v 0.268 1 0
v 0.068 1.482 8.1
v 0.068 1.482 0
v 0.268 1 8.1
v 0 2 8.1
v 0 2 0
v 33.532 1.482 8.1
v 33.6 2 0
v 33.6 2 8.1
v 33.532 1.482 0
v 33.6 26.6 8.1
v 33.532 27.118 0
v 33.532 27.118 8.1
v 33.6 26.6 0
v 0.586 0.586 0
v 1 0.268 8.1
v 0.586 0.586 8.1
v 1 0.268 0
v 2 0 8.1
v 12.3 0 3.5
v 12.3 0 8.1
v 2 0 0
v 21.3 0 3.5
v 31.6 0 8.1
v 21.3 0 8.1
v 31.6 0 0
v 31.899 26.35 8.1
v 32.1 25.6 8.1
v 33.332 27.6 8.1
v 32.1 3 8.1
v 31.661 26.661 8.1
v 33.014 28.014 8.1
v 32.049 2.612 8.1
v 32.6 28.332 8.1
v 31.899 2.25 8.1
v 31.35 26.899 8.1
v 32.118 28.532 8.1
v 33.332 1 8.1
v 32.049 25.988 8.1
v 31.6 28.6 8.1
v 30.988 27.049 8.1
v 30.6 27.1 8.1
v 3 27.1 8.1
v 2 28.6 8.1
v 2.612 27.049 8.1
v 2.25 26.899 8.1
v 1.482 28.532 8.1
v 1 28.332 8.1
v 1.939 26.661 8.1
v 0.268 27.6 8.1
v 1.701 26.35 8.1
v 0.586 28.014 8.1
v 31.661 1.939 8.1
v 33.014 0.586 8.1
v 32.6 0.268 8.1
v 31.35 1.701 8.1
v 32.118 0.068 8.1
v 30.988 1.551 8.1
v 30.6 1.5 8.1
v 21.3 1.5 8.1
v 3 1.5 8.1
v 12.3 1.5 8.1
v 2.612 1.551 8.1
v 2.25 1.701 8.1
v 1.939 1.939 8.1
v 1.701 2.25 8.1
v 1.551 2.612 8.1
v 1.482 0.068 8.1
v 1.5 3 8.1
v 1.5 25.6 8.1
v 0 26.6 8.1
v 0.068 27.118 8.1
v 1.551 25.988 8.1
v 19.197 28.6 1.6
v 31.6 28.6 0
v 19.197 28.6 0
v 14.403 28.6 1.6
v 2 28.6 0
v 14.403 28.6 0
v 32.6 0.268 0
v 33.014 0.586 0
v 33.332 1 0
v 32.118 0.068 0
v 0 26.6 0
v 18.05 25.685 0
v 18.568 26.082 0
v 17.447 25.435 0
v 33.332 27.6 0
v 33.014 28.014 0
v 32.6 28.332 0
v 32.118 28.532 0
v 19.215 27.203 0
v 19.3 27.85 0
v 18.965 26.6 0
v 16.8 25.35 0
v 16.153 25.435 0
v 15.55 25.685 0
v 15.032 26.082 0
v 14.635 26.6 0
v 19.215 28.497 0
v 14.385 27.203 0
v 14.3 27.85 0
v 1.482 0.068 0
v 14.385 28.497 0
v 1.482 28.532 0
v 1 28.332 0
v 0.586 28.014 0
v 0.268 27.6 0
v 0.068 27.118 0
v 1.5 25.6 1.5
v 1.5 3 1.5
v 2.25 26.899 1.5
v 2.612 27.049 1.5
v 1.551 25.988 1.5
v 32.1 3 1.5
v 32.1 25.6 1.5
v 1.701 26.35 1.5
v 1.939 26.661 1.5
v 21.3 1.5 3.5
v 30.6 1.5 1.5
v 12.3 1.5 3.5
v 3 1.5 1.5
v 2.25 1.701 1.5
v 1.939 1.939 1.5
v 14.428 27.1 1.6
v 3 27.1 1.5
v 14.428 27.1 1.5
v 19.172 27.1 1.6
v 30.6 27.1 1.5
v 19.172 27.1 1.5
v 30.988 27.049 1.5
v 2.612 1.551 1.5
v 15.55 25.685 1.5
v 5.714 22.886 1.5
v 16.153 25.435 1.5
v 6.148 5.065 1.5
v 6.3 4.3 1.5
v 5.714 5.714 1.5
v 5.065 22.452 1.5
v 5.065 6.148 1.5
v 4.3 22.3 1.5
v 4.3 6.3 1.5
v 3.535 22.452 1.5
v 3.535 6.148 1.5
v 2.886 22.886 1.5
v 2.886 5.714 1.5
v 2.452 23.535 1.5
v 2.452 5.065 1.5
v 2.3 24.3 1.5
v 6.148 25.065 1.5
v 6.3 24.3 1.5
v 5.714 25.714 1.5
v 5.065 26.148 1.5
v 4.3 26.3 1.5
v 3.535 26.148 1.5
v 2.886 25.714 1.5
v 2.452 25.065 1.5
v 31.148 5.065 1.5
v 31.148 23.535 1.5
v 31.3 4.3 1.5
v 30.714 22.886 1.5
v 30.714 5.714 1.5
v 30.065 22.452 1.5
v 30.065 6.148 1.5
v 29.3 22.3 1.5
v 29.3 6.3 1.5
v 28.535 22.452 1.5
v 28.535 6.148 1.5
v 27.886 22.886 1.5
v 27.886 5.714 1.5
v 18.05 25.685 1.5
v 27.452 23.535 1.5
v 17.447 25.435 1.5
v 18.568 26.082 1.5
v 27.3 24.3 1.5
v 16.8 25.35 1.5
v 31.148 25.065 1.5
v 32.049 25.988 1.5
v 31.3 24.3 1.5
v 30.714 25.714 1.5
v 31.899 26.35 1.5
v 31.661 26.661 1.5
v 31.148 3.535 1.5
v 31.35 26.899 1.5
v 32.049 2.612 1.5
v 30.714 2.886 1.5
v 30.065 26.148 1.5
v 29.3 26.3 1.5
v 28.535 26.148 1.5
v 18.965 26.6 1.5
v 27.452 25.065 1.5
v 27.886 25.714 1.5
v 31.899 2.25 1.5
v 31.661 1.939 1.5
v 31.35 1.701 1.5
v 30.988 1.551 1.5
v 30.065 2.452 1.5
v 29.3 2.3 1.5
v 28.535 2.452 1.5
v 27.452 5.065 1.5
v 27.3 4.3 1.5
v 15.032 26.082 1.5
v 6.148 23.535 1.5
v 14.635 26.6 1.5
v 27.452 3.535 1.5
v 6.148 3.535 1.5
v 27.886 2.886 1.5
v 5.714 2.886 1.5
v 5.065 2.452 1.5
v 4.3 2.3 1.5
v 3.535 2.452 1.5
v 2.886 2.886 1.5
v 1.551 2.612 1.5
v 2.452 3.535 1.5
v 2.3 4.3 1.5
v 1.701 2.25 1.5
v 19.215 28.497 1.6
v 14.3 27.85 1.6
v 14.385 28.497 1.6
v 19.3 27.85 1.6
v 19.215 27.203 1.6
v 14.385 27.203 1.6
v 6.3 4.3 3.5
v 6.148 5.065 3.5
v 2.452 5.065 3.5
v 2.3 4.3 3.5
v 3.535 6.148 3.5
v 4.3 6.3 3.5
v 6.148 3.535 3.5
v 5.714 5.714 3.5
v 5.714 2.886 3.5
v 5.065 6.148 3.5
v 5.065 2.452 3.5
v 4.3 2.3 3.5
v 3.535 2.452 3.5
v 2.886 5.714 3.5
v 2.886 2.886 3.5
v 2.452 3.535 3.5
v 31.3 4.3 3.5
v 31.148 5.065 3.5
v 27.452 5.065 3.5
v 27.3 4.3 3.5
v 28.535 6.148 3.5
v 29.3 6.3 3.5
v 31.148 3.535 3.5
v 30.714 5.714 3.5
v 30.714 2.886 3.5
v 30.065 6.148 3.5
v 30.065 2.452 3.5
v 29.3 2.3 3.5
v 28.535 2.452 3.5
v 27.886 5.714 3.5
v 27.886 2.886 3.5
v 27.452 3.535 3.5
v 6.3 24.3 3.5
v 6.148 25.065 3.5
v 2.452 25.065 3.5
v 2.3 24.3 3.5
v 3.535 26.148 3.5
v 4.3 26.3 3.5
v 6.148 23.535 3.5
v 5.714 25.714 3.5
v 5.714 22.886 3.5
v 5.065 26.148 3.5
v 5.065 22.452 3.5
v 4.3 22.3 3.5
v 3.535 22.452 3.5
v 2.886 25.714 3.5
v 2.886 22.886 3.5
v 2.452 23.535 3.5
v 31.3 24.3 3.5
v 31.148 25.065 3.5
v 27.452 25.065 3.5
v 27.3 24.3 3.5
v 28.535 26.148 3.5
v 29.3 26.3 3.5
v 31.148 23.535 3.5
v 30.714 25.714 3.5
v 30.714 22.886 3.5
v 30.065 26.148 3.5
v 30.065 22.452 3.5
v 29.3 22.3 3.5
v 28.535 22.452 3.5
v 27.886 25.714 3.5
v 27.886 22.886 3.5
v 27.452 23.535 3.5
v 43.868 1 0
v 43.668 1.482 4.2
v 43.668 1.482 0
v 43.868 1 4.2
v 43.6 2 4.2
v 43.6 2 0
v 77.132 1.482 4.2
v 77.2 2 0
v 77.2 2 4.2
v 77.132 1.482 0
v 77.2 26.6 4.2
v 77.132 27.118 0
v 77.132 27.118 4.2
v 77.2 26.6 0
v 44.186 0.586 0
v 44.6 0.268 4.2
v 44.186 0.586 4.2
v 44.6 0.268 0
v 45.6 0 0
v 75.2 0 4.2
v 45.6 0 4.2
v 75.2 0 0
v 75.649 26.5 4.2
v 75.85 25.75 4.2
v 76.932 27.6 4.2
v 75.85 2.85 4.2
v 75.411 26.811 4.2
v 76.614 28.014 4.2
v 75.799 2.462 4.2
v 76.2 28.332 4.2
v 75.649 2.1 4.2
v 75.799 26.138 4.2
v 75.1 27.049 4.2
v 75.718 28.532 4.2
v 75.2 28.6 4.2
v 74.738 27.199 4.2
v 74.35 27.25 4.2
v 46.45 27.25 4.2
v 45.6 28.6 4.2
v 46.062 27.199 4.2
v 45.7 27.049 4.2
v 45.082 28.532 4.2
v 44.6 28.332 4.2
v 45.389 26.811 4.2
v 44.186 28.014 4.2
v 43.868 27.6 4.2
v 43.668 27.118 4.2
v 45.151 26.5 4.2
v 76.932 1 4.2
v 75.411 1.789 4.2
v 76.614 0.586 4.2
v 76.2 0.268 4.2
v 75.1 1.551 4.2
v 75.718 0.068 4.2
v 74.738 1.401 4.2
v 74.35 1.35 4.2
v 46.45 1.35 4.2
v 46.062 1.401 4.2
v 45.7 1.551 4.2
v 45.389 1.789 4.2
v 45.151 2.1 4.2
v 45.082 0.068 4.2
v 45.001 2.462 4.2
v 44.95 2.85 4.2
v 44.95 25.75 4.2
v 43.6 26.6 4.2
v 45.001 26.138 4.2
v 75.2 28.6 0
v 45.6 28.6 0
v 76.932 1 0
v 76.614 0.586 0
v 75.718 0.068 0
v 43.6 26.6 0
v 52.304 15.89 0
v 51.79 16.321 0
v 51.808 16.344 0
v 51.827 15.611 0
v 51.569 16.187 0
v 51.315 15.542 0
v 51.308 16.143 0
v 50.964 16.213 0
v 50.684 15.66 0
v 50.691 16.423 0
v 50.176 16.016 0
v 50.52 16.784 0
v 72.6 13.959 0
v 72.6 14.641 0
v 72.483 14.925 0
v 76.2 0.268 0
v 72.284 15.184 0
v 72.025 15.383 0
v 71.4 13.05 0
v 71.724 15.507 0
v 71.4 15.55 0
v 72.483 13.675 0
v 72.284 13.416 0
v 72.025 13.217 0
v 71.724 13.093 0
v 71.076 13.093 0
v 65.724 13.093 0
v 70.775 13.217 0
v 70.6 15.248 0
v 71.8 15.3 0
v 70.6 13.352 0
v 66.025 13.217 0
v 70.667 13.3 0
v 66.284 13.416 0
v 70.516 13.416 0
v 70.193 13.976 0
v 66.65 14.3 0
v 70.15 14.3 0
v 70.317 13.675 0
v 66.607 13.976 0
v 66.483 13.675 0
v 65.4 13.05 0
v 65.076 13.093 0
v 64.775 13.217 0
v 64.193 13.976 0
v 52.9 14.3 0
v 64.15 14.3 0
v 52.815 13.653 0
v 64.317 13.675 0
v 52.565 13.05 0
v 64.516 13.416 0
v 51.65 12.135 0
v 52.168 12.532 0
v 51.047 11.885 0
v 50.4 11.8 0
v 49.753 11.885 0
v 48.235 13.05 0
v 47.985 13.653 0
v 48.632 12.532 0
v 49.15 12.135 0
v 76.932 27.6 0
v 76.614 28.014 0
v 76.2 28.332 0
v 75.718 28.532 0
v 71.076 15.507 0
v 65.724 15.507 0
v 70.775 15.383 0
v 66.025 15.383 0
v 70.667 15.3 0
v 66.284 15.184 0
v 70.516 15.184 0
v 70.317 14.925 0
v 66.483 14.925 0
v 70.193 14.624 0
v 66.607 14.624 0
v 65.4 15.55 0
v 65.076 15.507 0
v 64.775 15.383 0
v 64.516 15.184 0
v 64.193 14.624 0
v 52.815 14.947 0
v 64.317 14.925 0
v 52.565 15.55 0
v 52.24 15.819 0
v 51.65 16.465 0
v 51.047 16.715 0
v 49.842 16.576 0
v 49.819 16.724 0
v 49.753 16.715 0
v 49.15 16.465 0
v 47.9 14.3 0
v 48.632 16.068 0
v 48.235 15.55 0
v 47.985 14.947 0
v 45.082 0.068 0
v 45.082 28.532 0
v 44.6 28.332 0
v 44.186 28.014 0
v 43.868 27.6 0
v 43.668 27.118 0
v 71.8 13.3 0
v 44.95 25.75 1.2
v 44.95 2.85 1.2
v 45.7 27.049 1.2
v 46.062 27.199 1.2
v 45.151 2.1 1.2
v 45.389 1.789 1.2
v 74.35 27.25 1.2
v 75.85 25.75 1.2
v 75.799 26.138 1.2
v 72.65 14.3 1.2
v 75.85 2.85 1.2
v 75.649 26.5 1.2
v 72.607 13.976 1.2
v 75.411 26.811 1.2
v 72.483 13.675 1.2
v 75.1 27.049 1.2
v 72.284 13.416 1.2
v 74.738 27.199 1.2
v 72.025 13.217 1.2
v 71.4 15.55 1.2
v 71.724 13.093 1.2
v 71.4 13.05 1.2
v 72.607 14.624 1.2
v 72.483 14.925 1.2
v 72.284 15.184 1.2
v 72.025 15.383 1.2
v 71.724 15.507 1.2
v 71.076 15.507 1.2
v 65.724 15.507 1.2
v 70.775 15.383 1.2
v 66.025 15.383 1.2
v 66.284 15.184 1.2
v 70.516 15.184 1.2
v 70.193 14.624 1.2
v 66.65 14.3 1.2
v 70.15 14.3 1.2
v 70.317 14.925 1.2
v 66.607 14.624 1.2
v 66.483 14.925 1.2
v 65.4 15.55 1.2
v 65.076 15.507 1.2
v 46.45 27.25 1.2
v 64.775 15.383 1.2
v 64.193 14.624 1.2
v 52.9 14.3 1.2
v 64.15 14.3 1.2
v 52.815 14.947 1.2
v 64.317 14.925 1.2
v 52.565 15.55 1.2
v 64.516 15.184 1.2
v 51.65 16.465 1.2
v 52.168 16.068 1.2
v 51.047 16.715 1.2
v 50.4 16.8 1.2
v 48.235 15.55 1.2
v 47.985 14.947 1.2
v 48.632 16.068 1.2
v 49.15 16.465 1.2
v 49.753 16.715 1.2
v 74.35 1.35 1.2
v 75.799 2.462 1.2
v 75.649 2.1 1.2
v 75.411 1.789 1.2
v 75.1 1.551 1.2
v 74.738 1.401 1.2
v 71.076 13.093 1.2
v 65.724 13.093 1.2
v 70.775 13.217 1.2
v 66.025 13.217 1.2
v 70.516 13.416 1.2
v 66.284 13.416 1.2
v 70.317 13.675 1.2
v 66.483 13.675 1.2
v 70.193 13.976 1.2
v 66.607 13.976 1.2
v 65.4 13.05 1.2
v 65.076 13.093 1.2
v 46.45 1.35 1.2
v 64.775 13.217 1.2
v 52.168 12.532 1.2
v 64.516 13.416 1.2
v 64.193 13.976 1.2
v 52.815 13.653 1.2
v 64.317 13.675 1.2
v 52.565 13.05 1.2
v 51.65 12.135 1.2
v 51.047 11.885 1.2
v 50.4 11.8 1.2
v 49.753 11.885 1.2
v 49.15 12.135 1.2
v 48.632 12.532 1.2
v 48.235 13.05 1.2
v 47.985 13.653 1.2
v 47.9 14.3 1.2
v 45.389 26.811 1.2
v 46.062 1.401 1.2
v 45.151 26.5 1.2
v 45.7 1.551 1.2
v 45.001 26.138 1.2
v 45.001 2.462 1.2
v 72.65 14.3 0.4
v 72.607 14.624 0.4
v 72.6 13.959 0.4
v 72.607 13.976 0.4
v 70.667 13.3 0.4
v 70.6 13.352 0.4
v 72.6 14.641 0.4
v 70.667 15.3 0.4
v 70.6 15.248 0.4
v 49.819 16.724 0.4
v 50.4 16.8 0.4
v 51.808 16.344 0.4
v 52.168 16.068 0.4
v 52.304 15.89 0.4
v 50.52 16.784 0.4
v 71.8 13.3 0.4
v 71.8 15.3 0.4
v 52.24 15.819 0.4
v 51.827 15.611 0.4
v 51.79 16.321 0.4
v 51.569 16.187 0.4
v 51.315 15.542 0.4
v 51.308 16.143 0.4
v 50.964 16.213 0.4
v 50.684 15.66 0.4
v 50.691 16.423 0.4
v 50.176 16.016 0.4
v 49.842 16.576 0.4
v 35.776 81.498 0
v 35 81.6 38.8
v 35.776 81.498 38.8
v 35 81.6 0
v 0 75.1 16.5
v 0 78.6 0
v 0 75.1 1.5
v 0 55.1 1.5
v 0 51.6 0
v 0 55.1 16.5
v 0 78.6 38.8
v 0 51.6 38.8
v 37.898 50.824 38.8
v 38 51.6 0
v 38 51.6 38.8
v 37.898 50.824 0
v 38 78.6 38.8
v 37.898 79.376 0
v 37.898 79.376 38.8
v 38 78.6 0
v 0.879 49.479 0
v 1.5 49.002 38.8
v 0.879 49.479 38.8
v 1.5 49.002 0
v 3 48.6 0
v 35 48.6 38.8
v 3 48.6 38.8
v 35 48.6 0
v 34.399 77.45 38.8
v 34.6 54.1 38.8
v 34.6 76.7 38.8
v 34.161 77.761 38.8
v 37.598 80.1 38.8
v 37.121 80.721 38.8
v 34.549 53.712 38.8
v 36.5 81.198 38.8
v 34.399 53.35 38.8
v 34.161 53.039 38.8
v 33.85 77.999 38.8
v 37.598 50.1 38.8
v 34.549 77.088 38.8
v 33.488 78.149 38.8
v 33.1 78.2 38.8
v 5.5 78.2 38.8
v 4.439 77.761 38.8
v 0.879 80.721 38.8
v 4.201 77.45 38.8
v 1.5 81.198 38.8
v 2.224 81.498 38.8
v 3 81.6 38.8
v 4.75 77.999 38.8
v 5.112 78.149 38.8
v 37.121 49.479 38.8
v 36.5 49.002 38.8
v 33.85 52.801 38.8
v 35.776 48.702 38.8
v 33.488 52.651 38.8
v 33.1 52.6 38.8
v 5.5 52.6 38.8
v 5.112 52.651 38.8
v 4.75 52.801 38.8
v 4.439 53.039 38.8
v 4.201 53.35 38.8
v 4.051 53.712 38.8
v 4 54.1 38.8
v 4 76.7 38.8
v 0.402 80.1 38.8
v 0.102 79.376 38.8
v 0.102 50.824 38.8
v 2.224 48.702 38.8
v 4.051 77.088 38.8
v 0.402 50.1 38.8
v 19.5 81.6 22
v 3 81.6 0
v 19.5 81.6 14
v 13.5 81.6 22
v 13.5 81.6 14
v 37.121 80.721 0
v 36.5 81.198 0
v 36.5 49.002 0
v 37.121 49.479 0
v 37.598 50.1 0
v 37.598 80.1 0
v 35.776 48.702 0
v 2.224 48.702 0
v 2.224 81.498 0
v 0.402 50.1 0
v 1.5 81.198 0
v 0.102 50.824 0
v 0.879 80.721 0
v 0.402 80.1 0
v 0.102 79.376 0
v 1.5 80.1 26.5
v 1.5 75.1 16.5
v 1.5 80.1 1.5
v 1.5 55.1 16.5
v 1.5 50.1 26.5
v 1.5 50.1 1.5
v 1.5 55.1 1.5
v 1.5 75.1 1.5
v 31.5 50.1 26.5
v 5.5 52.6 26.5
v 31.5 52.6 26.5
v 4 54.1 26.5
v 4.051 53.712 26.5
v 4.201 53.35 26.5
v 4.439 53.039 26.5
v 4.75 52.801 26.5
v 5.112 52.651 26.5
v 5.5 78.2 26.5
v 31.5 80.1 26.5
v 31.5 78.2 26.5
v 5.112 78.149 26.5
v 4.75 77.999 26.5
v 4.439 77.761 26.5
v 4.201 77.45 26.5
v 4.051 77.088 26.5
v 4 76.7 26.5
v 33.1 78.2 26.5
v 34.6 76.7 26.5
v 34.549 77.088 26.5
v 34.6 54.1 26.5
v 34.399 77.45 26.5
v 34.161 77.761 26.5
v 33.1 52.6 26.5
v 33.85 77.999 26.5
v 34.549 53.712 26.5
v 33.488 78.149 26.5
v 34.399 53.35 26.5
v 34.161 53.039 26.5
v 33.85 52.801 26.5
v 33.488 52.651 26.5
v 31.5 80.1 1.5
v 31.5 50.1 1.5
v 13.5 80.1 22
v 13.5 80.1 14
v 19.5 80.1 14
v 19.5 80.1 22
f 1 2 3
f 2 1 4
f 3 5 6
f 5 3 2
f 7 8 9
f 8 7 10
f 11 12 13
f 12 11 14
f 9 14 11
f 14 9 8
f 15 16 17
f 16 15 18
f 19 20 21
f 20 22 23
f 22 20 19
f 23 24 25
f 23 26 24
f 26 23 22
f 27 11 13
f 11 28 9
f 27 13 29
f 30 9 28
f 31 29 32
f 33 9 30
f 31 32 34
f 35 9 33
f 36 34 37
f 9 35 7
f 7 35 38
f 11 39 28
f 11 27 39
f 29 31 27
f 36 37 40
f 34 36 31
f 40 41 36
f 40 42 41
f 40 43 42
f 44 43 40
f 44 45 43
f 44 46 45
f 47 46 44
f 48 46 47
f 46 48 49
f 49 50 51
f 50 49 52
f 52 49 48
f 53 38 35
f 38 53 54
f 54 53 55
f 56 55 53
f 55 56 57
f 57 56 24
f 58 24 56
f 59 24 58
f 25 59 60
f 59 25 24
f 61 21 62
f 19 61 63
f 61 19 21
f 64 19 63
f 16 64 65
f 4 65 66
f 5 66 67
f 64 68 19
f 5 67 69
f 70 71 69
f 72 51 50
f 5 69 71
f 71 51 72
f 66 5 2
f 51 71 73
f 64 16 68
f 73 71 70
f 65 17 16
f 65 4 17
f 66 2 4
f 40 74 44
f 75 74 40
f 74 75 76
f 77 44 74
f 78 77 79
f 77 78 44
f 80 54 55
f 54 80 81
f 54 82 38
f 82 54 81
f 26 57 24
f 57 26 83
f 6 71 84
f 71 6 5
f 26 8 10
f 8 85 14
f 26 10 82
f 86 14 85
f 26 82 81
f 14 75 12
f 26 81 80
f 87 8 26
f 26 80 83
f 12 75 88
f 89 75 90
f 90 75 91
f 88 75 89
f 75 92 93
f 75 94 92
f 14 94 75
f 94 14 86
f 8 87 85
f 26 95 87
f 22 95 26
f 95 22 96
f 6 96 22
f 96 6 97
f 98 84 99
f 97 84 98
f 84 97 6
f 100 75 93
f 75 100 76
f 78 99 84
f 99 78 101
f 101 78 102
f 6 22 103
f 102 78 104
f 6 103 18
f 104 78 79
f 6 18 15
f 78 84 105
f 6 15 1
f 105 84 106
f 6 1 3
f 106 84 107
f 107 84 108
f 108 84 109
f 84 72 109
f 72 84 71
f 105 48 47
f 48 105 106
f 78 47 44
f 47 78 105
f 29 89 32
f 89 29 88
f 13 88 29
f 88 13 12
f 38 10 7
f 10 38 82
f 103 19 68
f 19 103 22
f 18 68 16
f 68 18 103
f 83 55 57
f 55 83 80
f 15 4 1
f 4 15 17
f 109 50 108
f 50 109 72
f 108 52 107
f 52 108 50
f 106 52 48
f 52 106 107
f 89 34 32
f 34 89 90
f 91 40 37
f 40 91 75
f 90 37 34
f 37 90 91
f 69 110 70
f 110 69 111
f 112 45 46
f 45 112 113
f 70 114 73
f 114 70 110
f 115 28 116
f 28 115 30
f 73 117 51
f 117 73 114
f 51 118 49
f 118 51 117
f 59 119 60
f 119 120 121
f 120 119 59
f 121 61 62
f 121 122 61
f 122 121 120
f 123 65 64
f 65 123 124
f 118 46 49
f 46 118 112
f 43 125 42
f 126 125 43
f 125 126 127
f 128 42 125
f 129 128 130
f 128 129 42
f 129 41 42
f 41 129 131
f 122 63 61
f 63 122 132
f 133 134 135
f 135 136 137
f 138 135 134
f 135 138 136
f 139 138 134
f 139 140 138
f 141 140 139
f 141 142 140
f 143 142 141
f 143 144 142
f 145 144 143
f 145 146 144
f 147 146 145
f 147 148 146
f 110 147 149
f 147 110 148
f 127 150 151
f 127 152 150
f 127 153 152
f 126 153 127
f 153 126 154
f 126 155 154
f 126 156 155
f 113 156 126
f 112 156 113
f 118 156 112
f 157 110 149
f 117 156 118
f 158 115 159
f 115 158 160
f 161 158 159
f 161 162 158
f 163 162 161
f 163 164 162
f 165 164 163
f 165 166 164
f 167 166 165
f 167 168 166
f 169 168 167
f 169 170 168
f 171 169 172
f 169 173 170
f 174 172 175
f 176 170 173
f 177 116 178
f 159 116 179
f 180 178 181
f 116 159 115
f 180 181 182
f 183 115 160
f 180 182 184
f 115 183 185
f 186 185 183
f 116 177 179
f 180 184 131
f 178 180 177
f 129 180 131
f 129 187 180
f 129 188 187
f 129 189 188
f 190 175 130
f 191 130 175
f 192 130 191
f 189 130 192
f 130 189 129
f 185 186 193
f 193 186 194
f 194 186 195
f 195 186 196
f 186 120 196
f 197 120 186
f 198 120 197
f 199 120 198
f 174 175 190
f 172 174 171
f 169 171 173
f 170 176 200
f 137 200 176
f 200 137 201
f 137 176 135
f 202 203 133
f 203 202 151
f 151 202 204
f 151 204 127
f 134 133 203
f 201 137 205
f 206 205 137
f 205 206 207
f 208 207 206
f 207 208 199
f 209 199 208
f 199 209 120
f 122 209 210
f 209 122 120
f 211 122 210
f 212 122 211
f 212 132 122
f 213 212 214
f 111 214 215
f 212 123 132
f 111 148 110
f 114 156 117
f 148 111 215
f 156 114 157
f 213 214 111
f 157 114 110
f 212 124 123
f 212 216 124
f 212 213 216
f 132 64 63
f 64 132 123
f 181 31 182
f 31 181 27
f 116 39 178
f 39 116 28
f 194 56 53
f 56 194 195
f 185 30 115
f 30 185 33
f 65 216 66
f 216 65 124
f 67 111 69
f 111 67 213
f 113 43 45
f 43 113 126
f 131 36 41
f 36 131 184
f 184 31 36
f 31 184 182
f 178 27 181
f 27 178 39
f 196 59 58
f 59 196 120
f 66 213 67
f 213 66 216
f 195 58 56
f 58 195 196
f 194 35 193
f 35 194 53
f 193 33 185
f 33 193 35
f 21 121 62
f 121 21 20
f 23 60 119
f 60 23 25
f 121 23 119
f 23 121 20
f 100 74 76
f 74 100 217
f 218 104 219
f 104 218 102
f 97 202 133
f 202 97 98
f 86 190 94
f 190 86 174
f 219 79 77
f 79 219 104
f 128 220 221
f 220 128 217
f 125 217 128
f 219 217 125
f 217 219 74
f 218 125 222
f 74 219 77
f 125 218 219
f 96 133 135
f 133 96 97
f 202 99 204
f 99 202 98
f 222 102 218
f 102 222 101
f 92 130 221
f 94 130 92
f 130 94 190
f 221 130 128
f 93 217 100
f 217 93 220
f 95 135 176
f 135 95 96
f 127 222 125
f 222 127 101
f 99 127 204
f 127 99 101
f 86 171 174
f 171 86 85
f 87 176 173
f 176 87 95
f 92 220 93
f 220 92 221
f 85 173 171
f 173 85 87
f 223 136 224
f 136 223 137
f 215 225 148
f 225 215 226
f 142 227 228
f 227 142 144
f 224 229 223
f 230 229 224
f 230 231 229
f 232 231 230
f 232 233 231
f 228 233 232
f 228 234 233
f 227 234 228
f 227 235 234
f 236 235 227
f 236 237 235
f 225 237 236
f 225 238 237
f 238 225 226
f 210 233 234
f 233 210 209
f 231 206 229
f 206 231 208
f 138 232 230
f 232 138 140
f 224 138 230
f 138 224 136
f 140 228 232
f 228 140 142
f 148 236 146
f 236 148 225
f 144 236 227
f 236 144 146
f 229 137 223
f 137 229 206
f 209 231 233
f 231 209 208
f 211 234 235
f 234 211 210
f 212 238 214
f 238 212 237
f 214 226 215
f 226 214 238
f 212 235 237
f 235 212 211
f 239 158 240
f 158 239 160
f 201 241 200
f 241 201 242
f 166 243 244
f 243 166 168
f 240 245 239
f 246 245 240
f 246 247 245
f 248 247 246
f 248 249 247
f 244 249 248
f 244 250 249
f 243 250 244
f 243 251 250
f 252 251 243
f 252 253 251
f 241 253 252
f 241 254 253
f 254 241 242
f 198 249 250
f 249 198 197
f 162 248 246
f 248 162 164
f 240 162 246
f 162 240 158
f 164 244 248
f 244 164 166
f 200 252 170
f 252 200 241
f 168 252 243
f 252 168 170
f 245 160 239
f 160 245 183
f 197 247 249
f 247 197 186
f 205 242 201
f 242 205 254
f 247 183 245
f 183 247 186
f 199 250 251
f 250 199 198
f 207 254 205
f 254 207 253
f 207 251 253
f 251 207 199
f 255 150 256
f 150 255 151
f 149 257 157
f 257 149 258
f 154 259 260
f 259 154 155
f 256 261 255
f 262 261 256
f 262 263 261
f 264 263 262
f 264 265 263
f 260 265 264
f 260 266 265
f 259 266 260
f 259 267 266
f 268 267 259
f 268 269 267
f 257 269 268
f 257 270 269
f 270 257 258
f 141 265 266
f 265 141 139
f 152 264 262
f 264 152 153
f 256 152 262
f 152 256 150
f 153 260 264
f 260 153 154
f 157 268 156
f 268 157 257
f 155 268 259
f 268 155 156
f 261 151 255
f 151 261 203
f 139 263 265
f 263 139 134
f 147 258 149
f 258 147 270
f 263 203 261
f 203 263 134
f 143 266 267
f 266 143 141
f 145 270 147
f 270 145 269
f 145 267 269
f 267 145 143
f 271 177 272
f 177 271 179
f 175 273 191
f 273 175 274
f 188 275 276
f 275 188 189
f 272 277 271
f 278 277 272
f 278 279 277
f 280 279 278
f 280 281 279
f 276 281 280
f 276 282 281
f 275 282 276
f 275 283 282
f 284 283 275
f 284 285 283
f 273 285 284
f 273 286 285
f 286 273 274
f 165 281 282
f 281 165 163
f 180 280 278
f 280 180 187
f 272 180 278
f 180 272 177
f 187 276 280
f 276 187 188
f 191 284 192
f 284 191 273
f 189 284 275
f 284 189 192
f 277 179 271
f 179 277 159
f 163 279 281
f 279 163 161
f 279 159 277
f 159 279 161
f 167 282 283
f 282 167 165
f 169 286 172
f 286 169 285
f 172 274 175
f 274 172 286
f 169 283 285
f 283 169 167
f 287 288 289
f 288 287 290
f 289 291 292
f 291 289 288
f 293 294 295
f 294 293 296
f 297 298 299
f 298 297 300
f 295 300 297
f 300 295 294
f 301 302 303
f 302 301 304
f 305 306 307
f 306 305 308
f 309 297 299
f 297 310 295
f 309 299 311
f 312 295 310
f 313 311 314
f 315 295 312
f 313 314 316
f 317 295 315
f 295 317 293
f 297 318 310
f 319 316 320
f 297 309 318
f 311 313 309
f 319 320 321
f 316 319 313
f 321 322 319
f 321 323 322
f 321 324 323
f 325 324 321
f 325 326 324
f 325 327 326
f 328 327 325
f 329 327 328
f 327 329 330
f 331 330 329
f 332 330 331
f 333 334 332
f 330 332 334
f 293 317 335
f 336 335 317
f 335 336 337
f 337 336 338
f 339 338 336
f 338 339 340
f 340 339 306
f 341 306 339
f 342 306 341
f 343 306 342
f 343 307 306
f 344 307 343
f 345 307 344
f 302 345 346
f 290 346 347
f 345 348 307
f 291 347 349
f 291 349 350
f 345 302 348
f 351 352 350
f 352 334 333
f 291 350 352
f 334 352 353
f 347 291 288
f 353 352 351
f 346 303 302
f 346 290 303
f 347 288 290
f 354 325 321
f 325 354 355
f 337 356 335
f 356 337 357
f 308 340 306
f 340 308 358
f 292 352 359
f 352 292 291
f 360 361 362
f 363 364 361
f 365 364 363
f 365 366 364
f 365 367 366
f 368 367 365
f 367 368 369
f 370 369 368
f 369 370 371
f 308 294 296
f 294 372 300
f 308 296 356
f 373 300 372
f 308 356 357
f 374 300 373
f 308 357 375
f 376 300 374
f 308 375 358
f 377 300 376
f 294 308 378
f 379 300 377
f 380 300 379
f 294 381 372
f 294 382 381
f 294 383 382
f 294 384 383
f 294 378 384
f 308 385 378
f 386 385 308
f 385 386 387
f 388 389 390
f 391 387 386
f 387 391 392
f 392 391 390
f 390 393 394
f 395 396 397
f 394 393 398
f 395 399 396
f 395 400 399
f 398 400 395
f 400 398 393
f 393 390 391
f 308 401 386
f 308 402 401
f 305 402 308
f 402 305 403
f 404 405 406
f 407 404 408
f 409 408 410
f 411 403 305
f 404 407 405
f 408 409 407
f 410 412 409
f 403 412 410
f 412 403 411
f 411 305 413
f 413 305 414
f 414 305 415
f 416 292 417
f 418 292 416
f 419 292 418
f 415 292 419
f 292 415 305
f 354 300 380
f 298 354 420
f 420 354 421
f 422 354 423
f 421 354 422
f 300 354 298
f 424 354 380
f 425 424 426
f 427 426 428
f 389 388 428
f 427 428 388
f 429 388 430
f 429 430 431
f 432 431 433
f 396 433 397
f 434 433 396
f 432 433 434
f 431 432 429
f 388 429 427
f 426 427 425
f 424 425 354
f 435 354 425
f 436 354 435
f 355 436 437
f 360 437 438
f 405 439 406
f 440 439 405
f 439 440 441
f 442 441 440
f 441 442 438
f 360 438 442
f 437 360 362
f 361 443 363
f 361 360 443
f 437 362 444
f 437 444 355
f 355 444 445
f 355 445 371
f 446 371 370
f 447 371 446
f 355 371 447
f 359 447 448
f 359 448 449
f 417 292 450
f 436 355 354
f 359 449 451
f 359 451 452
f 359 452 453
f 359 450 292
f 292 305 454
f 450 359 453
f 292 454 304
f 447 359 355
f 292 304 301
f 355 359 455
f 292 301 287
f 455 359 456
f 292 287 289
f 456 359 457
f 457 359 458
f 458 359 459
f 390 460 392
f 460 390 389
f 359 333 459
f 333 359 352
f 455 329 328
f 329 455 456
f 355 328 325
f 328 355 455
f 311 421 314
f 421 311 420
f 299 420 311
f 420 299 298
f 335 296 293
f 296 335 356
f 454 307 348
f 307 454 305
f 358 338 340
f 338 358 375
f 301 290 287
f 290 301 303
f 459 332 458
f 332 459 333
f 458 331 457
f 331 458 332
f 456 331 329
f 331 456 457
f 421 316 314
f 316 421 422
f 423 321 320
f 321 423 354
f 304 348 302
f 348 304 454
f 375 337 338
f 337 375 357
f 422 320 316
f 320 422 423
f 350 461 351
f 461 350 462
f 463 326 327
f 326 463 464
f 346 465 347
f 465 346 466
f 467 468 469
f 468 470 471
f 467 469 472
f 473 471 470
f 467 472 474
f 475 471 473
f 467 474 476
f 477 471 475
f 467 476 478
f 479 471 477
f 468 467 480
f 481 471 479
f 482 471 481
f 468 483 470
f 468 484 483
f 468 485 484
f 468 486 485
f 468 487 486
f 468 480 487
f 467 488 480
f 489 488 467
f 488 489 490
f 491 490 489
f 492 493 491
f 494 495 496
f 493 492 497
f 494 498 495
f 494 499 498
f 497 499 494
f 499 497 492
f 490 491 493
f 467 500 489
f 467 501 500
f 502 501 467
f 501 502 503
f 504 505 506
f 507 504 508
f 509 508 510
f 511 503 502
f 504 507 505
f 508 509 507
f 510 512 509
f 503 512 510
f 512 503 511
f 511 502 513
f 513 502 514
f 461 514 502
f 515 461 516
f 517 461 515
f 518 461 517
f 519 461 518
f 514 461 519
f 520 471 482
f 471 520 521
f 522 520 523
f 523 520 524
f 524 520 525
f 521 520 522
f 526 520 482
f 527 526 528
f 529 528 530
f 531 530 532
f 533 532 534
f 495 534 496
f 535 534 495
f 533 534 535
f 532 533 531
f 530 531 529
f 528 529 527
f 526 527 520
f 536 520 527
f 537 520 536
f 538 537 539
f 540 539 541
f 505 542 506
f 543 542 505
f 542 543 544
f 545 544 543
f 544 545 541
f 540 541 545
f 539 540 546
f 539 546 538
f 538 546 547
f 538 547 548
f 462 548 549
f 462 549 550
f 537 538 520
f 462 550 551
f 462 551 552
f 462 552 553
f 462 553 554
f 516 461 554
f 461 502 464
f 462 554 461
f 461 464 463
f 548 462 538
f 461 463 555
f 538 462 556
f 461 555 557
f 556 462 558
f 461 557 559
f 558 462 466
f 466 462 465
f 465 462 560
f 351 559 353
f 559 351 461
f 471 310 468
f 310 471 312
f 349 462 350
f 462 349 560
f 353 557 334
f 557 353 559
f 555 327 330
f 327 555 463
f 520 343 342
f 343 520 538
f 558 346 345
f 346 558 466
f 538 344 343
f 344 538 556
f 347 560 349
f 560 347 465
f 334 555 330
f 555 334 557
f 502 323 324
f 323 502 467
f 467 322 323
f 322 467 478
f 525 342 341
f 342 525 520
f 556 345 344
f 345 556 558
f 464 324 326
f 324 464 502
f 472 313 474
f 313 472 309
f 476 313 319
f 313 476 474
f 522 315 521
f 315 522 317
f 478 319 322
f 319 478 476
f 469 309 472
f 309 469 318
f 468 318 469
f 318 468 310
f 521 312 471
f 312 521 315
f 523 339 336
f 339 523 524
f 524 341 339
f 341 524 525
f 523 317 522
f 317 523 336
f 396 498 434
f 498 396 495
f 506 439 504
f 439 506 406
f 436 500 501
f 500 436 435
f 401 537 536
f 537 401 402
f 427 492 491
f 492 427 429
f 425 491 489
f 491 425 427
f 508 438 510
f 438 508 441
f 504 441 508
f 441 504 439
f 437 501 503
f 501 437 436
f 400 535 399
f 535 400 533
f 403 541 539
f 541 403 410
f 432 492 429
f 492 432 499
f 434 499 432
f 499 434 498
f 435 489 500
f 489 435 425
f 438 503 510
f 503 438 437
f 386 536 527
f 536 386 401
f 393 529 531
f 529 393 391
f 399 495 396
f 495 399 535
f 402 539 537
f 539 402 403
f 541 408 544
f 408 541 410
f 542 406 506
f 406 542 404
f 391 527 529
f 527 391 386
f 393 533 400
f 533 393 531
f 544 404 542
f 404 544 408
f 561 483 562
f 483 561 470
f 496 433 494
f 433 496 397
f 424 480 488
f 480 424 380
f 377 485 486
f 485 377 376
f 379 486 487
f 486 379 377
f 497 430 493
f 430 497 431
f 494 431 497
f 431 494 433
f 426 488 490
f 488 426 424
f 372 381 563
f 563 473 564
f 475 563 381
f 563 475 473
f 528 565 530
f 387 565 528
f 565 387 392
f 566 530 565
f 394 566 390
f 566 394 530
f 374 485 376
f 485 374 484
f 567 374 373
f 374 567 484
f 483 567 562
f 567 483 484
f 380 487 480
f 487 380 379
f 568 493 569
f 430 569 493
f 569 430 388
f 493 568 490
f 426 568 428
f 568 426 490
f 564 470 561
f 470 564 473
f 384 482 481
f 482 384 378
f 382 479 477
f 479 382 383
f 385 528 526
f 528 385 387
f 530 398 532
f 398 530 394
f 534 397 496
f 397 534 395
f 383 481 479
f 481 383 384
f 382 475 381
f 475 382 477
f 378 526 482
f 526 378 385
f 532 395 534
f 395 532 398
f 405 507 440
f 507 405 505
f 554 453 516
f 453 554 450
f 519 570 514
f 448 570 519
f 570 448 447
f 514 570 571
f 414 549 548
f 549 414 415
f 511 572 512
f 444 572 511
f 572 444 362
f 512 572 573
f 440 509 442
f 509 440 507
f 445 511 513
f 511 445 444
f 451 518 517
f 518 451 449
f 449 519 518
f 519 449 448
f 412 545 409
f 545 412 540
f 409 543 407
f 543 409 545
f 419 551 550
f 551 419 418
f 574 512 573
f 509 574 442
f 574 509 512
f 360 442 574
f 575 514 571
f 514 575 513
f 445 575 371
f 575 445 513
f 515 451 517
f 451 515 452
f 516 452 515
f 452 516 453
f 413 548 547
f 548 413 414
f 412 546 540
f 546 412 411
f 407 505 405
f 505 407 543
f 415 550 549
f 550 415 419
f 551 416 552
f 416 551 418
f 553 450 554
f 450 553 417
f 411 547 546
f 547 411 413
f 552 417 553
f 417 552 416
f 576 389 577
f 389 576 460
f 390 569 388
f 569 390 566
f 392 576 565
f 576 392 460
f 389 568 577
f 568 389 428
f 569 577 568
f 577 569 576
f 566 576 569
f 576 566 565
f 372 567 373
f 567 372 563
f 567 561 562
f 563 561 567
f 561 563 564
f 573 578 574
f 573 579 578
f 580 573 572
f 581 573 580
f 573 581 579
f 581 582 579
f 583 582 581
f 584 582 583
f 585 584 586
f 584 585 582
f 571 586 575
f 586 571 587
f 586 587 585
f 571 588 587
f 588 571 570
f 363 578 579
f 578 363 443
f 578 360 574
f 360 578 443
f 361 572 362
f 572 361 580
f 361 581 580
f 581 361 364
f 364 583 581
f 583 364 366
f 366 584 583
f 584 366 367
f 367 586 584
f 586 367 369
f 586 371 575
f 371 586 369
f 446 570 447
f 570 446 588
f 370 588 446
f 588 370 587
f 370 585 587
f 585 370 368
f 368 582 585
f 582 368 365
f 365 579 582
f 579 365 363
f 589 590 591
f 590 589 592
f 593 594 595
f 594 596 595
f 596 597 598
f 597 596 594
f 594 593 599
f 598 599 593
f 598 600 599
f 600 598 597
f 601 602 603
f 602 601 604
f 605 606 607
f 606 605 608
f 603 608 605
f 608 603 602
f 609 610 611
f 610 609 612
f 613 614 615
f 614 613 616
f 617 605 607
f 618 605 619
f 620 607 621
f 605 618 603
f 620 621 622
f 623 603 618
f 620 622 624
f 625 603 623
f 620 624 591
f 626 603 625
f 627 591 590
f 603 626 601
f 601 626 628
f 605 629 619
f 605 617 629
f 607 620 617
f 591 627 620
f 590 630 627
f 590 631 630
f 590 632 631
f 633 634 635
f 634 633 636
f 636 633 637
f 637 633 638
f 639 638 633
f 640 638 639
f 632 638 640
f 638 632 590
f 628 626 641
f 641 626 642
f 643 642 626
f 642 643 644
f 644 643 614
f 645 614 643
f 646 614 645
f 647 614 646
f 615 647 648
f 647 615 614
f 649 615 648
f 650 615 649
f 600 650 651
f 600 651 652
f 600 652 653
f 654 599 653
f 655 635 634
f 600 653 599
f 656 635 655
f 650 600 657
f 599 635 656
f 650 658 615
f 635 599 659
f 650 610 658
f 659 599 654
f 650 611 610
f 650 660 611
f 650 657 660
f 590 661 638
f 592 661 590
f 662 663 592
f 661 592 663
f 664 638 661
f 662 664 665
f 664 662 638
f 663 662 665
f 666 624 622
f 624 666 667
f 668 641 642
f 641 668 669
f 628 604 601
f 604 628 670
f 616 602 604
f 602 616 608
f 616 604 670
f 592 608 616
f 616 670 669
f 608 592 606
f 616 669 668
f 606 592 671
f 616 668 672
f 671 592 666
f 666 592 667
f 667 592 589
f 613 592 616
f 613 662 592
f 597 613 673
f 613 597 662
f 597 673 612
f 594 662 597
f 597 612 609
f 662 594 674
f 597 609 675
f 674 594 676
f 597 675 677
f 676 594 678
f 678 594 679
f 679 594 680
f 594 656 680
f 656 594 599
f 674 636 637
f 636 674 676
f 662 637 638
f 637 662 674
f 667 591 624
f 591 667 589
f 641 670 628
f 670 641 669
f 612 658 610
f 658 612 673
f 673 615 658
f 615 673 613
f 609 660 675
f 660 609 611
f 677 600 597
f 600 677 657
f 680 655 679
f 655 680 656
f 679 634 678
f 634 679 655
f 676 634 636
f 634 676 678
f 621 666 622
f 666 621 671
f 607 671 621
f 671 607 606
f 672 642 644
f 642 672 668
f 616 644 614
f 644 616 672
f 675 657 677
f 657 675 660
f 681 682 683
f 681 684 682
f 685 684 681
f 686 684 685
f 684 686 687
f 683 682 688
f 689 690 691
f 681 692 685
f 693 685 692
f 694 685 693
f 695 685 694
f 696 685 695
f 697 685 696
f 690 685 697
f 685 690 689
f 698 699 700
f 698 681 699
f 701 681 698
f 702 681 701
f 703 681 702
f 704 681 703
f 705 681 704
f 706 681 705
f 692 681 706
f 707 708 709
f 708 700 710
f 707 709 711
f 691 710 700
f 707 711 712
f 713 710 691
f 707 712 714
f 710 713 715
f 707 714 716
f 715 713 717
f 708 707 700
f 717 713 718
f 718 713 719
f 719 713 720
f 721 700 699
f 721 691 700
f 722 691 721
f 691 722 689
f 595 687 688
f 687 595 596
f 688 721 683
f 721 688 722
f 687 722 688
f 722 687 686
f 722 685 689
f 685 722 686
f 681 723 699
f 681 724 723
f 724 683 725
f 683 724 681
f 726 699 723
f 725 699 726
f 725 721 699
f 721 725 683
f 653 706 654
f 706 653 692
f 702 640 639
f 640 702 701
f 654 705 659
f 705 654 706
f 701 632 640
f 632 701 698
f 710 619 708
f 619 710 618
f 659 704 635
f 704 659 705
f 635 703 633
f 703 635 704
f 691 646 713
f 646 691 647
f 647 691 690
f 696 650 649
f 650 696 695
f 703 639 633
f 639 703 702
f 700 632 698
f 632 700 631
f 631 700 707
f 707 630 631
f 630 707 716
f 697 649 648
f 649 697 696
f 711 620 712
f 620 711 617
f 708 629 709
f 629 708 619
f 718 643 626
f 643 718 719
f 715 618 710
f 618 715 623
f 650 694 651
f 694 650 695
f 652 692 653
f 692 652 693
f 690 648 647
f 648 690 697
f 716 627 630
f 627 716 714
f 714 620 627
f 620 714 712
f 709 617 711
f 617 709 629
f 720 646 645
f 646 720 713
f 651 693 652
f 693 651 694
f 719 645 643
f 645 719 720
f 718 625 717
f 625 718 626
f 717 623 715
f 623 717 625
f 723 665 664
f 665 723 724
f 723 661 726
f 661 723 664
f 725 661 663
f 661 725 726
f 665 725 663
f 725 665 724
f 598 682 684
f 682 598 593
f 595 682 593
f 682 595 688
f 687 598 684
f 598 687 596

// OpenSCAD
// ============================================
// CULTIVIO AQUASENSE - ROUTER NODE ENCLOSURE
// ============================================
// OpenSCAD Parametric Design
// Export to STL for 3D printing
// 
// Material: PLA or PETG
// Layer Height: 0.2mm
// Infill: 15%
// 
// This is the SMALLEST enclosure - just a
// range extender, can be plugged into any
// USB outlet like a "smart plug"
// ============================================

// =====================
// PARAMETERS
// =====================

// PCB Dimensions (smallest PCB)
pcb_length = 30;       // mm - compact!
pcb_width = 25;        // mm
pcb_thickness = 1.6;   // mm

// Enclosure Settings
wall_thickness = 1.5;  // mm - thin for compact size
bottom_thickness = 1.5; // mm
top_thickness = 1.2;   // mm
pcb_clearance = 0.3;   // mm gap around PCB
pcb_standoff_height = 2; // mm height of PCB standoffs

// Component Heights (above PCB)
esp32_height = 3.5;    // ESP32-H2 module height
tallest_component = 5; // USB-C is tallest

// USB-C Port (direct plug design option)
usb_width = 9;         // mm
usb_height = 3.5;      // mm
usb_offset_x = 15;     // mm from left edge of PCB

// LED Window
led_diameter = 2.5;    // mm - smaller LEDs
led_spacing = 6;       // mm between LEDs
led_offset_x = 20;     // mm from left edge
led_offset_y = 12.5;   // mm from bottom edge

// Button
button_diameter = 5;   // mm
button_offset_x = 5;   // mm from left edge
button_offset_y = 12.5; // mm from bottom edge

// Mounting (optional - can also just sit on shelf)
mount_hole_diameter = 2.5; // M2.5 screw
keyhole_width = 5;     // For wall hanging

// Calculated Dimensions
inner_length = pcb_length + (pcb_clearance * 2);
inner_width = pcb_width + (pcb_clearance * 2);
inner_height = pcb_standoff_height + pcb_thickness + tallest_component + 1;

outer_length = inner_length + (wall_thickness * 2);
outer_width = inner_width + (wall_thickness * 2);
outer_height = inner_height + bottom_thickness + top_thickness;

// =====================
// MODULES
// =====================

// Rounded box module
module rounded_box(length, width, height, radius) {
    hull() {
        translate([radius, radius, 0])
            cylinder(r=radius, h=height, $fn=24);
        translate([length-radius, radius, 0])
            cylinder(r=radius, h=height, $fn=24);
        translate([radius, width-radius, 0])
            cylinder(r=radius, h=height, $fn=24);
        translate([length-radius, width-radius, 0])
            cylinder(r=radius, h=height, $fn=24);
    }
}

// Simple PCB standoff
module pcb_standoff(height, diameter) {
    cylinder(d=diameter, h=height, $fn=16);
}

// Keyhole for wall mount
module keyhole(large_d, small_d, length) {
    hull() {
        cylinder(d=large_d, h=wall_thickness+0.2, $fn=24);
        translate([0, length, 0])
            cylinder(d=small_d, h=wall_thickness+0.2, $fn=24);
    }
}

// =====================
// BOTTOM CASE
// =====================

module bottom_case() {
    case_height = bottom_thickness + pcb_standoff_height + pcb_thickness + 3;
    
    difference() {
        // Outer shell
        rounded_box(outer_length, outer_width, case_height, 2);
        
        // Inner cavity
        translate([wall_thickness, wall_thickness, bottom_thickness])
            rounded_box(inner_length, inner_width, case_height, 1.5);
        
        // USB-C cutout
        translate([wall_thickness + pcb_clearance + usb_offset_x - usb_width/2, 
                   -0.1, 
                   bottom_thickness + pcb_standoff_height])
            cube([usb_width, wall_thickness + 0.2, usb_height + 1.5]);
        
        // Keyhole wall mount (back)
        translate([outer_length/2, outer_width - wall_thickness/2, -0.1])
            keyhole(5, 3, 6);
    }
    
    // PCB Standoffs (4 corners)
    standoff_positions = [
        [wall_thickness + pcb_clearance + 2.5, 
         wall_thickness + pcb_clearance + 2.5],
        [wall_thickness + pcb_clearance + pcb_length - 2.5, 
         wall_thickness + pcb_clearance + 2.5],
        [wall_thickness + pcb_clearance + 2.5, 
         wall_thickness + pcb_clearance + pcb_width - 2.5],
        [wall_thickness + pcb_clearance + pcb_length - 2.5, 
         wall_thickness + pcb_clearance + pcb_width - 2.5]
    ];
    
    for (pos = standoff_positions) {
        translate([pos[0], pos[1], bottom_thickness])
            pcb_standoff(pcb_standoff_height, 4);
    }
}

// =====================
// TOP CASE (LID)
// =====================

module top_case() {
    lid_height = inner_height - pcb_standoff_height - pcb_thickness - 3 + top_thickness;
    
    difference() {
        // Outer shell
        rounded_box(outer_length, outer_width, lid_height, 2);
        
        // Inner lip for snap fit
        translate([wall_thickness - 0.15, wall_thickness - 0.15, top_thickness])
            rounded_box(inner_length + 0.3, inner_width + 0.3, lid_height, 1.5);
        
        // LED windows
        translate([wall_thickness + pcb_clearance + led_offset_x, 
                   wall_thickness + pcb_clearance + led_offset_y, -0.1])
            cylinder(d=led_diameter, h=top_thickness + 0.2, $fn=24);
        translate([wall_thickness + pcb_clearance + led_offset_x + led_spacing, 
                   wall_thickness + pcb_clearance + led_offset_y, -0.1])
            cylinder(d=led_diameter, h=top_thickness + 0.2, $fn=24);
        
        // Button access hole
        translate([wall_thickness + pcb_clearance + button_offset_x, 
                   wall_thickness + pcb_clearance + button_offset_y, -0.1])
            cylinder(d=button_diameter, h=top_thickness + 0.2, $fn=24);
    }
    
    // Logo/Text (embossed) - smaller for compact case
    translate([outer_length/2, outer_width/2 + 3, 0])
        linear_extrude(height=0.4)
            text("CULTIVIO", size=3.5, halign="center", valign="center", font="Arial:style=Bold");
    
    translate([outer_length/2, outer_width/2 - 4, 0])
        linear_extrude(height=0.4)
            text("Router", size=2.5, halign="center", valign="center", font="Arial");
    
    // Signal strength icon
    translate([outer_length - 6, outer_width/2, 0]) {
        // WiFi-like icon (signal bars)
        for (i = [0:2]) {
            translate([i*2, 0, 0])
                linear_extrude(height=0.4)
                    square([1.2, 2 + i*1.5], center=true);
        }
    }
}

// =====================
// WALL PLUG HOUSING (ALTERNATIVE)
// =====================
// This version integrates with a USB charger
// to create a plug-in range extender

module wall_plug_housing() {
    // Housing that wraps around a USB charger cube
    charger_width = 30;
    charger_depth = 30;
    charger_height = 25;
    
    housing_wall = 1.5;
    
    difference() {
        // Outer housing
        translate([0, 0, 0])
            rounded_box(charger_width + housing_wall*2 + 5, 
                       charger_depth + housing_wall*2,
                       charger_height + outer_height + housing_wall, 3);
        
        // Charger cavity
        translate([housing_wall, housing_wall, housing_wall])
            cube([charger_width, charger_depth, charger_height]);
        
        // PCB cavity (top)
        translate([housing_wall + 2.5, housing_wall + 2.5, 
                   housing_wall + charger_height])
            rounded_box(inner_length, inner_width, outer_height, 1.5);
        
        // USB cable channel
        translate([charger_width/2 + housing_wall - 3, 
                   charger_depth + housing_wall - 0.1, 
                   housing_wall + charger_height/2])
            cube([6, housing_wall + 0.2, 8]);
        
        // LED windows
        translate([housing_wall + 2.5 + pcb_clearance + led_offset_x, 
                   housing_wall + 2.5 + pcb_clearance + led_offset_y, 
                   housing_wall + charger_height + outer_height - 0.1])
            cylinder(d=led_diameter, h=housing_wall + 0.2, $fn=24);
        translate([housing_wall + 2.5 + pcb_clearance + led_offset_x + led_spacing, 
                   housing_wall + 2.5 + pcb_clearance + led_offset_y, 
                   housing_wall + charger_height + outer_height - 0.1])
            cylinder(d=led_diameter, h=housing_wall + 0.2, $fn=24);
        
        // Prong access
        translate([-0.1, charger_depth/2 - 10 + housing_wall, housing_wall])
            cube([housing_wall + 0.2, 20, 15]);
    }
}

// =====================
// RENDER
// =====================

// Standard enclosure
color("LightSteelBlue")
    bottom_case();

color("SteelBlue")
    translate([outer_length + 10, 0, 0])
        top_case();

// Wall plug housing (alternative)
color("DarkSlateGray")
    translate([0, outer_width + 20, 0])
        wall_plug_housing();

// For export, uncomment one of the following:
// bottom_case();
// top_case();
// wall_plug_housing();

// =====================
// EXPORT INSTRUCTIONS
// =====================
// 1. Open this file in OpenSCAD
// 2. Uncomment desired part at the end
// 3. Render (F6)
// 4. Export as STL (F7)
//
// Print Settings:
// - Material: PLA or PETG
// - Layer: 0.2mm
// - Infill: 15%
// - No supports needed
// - Print time: ~45 min per part
